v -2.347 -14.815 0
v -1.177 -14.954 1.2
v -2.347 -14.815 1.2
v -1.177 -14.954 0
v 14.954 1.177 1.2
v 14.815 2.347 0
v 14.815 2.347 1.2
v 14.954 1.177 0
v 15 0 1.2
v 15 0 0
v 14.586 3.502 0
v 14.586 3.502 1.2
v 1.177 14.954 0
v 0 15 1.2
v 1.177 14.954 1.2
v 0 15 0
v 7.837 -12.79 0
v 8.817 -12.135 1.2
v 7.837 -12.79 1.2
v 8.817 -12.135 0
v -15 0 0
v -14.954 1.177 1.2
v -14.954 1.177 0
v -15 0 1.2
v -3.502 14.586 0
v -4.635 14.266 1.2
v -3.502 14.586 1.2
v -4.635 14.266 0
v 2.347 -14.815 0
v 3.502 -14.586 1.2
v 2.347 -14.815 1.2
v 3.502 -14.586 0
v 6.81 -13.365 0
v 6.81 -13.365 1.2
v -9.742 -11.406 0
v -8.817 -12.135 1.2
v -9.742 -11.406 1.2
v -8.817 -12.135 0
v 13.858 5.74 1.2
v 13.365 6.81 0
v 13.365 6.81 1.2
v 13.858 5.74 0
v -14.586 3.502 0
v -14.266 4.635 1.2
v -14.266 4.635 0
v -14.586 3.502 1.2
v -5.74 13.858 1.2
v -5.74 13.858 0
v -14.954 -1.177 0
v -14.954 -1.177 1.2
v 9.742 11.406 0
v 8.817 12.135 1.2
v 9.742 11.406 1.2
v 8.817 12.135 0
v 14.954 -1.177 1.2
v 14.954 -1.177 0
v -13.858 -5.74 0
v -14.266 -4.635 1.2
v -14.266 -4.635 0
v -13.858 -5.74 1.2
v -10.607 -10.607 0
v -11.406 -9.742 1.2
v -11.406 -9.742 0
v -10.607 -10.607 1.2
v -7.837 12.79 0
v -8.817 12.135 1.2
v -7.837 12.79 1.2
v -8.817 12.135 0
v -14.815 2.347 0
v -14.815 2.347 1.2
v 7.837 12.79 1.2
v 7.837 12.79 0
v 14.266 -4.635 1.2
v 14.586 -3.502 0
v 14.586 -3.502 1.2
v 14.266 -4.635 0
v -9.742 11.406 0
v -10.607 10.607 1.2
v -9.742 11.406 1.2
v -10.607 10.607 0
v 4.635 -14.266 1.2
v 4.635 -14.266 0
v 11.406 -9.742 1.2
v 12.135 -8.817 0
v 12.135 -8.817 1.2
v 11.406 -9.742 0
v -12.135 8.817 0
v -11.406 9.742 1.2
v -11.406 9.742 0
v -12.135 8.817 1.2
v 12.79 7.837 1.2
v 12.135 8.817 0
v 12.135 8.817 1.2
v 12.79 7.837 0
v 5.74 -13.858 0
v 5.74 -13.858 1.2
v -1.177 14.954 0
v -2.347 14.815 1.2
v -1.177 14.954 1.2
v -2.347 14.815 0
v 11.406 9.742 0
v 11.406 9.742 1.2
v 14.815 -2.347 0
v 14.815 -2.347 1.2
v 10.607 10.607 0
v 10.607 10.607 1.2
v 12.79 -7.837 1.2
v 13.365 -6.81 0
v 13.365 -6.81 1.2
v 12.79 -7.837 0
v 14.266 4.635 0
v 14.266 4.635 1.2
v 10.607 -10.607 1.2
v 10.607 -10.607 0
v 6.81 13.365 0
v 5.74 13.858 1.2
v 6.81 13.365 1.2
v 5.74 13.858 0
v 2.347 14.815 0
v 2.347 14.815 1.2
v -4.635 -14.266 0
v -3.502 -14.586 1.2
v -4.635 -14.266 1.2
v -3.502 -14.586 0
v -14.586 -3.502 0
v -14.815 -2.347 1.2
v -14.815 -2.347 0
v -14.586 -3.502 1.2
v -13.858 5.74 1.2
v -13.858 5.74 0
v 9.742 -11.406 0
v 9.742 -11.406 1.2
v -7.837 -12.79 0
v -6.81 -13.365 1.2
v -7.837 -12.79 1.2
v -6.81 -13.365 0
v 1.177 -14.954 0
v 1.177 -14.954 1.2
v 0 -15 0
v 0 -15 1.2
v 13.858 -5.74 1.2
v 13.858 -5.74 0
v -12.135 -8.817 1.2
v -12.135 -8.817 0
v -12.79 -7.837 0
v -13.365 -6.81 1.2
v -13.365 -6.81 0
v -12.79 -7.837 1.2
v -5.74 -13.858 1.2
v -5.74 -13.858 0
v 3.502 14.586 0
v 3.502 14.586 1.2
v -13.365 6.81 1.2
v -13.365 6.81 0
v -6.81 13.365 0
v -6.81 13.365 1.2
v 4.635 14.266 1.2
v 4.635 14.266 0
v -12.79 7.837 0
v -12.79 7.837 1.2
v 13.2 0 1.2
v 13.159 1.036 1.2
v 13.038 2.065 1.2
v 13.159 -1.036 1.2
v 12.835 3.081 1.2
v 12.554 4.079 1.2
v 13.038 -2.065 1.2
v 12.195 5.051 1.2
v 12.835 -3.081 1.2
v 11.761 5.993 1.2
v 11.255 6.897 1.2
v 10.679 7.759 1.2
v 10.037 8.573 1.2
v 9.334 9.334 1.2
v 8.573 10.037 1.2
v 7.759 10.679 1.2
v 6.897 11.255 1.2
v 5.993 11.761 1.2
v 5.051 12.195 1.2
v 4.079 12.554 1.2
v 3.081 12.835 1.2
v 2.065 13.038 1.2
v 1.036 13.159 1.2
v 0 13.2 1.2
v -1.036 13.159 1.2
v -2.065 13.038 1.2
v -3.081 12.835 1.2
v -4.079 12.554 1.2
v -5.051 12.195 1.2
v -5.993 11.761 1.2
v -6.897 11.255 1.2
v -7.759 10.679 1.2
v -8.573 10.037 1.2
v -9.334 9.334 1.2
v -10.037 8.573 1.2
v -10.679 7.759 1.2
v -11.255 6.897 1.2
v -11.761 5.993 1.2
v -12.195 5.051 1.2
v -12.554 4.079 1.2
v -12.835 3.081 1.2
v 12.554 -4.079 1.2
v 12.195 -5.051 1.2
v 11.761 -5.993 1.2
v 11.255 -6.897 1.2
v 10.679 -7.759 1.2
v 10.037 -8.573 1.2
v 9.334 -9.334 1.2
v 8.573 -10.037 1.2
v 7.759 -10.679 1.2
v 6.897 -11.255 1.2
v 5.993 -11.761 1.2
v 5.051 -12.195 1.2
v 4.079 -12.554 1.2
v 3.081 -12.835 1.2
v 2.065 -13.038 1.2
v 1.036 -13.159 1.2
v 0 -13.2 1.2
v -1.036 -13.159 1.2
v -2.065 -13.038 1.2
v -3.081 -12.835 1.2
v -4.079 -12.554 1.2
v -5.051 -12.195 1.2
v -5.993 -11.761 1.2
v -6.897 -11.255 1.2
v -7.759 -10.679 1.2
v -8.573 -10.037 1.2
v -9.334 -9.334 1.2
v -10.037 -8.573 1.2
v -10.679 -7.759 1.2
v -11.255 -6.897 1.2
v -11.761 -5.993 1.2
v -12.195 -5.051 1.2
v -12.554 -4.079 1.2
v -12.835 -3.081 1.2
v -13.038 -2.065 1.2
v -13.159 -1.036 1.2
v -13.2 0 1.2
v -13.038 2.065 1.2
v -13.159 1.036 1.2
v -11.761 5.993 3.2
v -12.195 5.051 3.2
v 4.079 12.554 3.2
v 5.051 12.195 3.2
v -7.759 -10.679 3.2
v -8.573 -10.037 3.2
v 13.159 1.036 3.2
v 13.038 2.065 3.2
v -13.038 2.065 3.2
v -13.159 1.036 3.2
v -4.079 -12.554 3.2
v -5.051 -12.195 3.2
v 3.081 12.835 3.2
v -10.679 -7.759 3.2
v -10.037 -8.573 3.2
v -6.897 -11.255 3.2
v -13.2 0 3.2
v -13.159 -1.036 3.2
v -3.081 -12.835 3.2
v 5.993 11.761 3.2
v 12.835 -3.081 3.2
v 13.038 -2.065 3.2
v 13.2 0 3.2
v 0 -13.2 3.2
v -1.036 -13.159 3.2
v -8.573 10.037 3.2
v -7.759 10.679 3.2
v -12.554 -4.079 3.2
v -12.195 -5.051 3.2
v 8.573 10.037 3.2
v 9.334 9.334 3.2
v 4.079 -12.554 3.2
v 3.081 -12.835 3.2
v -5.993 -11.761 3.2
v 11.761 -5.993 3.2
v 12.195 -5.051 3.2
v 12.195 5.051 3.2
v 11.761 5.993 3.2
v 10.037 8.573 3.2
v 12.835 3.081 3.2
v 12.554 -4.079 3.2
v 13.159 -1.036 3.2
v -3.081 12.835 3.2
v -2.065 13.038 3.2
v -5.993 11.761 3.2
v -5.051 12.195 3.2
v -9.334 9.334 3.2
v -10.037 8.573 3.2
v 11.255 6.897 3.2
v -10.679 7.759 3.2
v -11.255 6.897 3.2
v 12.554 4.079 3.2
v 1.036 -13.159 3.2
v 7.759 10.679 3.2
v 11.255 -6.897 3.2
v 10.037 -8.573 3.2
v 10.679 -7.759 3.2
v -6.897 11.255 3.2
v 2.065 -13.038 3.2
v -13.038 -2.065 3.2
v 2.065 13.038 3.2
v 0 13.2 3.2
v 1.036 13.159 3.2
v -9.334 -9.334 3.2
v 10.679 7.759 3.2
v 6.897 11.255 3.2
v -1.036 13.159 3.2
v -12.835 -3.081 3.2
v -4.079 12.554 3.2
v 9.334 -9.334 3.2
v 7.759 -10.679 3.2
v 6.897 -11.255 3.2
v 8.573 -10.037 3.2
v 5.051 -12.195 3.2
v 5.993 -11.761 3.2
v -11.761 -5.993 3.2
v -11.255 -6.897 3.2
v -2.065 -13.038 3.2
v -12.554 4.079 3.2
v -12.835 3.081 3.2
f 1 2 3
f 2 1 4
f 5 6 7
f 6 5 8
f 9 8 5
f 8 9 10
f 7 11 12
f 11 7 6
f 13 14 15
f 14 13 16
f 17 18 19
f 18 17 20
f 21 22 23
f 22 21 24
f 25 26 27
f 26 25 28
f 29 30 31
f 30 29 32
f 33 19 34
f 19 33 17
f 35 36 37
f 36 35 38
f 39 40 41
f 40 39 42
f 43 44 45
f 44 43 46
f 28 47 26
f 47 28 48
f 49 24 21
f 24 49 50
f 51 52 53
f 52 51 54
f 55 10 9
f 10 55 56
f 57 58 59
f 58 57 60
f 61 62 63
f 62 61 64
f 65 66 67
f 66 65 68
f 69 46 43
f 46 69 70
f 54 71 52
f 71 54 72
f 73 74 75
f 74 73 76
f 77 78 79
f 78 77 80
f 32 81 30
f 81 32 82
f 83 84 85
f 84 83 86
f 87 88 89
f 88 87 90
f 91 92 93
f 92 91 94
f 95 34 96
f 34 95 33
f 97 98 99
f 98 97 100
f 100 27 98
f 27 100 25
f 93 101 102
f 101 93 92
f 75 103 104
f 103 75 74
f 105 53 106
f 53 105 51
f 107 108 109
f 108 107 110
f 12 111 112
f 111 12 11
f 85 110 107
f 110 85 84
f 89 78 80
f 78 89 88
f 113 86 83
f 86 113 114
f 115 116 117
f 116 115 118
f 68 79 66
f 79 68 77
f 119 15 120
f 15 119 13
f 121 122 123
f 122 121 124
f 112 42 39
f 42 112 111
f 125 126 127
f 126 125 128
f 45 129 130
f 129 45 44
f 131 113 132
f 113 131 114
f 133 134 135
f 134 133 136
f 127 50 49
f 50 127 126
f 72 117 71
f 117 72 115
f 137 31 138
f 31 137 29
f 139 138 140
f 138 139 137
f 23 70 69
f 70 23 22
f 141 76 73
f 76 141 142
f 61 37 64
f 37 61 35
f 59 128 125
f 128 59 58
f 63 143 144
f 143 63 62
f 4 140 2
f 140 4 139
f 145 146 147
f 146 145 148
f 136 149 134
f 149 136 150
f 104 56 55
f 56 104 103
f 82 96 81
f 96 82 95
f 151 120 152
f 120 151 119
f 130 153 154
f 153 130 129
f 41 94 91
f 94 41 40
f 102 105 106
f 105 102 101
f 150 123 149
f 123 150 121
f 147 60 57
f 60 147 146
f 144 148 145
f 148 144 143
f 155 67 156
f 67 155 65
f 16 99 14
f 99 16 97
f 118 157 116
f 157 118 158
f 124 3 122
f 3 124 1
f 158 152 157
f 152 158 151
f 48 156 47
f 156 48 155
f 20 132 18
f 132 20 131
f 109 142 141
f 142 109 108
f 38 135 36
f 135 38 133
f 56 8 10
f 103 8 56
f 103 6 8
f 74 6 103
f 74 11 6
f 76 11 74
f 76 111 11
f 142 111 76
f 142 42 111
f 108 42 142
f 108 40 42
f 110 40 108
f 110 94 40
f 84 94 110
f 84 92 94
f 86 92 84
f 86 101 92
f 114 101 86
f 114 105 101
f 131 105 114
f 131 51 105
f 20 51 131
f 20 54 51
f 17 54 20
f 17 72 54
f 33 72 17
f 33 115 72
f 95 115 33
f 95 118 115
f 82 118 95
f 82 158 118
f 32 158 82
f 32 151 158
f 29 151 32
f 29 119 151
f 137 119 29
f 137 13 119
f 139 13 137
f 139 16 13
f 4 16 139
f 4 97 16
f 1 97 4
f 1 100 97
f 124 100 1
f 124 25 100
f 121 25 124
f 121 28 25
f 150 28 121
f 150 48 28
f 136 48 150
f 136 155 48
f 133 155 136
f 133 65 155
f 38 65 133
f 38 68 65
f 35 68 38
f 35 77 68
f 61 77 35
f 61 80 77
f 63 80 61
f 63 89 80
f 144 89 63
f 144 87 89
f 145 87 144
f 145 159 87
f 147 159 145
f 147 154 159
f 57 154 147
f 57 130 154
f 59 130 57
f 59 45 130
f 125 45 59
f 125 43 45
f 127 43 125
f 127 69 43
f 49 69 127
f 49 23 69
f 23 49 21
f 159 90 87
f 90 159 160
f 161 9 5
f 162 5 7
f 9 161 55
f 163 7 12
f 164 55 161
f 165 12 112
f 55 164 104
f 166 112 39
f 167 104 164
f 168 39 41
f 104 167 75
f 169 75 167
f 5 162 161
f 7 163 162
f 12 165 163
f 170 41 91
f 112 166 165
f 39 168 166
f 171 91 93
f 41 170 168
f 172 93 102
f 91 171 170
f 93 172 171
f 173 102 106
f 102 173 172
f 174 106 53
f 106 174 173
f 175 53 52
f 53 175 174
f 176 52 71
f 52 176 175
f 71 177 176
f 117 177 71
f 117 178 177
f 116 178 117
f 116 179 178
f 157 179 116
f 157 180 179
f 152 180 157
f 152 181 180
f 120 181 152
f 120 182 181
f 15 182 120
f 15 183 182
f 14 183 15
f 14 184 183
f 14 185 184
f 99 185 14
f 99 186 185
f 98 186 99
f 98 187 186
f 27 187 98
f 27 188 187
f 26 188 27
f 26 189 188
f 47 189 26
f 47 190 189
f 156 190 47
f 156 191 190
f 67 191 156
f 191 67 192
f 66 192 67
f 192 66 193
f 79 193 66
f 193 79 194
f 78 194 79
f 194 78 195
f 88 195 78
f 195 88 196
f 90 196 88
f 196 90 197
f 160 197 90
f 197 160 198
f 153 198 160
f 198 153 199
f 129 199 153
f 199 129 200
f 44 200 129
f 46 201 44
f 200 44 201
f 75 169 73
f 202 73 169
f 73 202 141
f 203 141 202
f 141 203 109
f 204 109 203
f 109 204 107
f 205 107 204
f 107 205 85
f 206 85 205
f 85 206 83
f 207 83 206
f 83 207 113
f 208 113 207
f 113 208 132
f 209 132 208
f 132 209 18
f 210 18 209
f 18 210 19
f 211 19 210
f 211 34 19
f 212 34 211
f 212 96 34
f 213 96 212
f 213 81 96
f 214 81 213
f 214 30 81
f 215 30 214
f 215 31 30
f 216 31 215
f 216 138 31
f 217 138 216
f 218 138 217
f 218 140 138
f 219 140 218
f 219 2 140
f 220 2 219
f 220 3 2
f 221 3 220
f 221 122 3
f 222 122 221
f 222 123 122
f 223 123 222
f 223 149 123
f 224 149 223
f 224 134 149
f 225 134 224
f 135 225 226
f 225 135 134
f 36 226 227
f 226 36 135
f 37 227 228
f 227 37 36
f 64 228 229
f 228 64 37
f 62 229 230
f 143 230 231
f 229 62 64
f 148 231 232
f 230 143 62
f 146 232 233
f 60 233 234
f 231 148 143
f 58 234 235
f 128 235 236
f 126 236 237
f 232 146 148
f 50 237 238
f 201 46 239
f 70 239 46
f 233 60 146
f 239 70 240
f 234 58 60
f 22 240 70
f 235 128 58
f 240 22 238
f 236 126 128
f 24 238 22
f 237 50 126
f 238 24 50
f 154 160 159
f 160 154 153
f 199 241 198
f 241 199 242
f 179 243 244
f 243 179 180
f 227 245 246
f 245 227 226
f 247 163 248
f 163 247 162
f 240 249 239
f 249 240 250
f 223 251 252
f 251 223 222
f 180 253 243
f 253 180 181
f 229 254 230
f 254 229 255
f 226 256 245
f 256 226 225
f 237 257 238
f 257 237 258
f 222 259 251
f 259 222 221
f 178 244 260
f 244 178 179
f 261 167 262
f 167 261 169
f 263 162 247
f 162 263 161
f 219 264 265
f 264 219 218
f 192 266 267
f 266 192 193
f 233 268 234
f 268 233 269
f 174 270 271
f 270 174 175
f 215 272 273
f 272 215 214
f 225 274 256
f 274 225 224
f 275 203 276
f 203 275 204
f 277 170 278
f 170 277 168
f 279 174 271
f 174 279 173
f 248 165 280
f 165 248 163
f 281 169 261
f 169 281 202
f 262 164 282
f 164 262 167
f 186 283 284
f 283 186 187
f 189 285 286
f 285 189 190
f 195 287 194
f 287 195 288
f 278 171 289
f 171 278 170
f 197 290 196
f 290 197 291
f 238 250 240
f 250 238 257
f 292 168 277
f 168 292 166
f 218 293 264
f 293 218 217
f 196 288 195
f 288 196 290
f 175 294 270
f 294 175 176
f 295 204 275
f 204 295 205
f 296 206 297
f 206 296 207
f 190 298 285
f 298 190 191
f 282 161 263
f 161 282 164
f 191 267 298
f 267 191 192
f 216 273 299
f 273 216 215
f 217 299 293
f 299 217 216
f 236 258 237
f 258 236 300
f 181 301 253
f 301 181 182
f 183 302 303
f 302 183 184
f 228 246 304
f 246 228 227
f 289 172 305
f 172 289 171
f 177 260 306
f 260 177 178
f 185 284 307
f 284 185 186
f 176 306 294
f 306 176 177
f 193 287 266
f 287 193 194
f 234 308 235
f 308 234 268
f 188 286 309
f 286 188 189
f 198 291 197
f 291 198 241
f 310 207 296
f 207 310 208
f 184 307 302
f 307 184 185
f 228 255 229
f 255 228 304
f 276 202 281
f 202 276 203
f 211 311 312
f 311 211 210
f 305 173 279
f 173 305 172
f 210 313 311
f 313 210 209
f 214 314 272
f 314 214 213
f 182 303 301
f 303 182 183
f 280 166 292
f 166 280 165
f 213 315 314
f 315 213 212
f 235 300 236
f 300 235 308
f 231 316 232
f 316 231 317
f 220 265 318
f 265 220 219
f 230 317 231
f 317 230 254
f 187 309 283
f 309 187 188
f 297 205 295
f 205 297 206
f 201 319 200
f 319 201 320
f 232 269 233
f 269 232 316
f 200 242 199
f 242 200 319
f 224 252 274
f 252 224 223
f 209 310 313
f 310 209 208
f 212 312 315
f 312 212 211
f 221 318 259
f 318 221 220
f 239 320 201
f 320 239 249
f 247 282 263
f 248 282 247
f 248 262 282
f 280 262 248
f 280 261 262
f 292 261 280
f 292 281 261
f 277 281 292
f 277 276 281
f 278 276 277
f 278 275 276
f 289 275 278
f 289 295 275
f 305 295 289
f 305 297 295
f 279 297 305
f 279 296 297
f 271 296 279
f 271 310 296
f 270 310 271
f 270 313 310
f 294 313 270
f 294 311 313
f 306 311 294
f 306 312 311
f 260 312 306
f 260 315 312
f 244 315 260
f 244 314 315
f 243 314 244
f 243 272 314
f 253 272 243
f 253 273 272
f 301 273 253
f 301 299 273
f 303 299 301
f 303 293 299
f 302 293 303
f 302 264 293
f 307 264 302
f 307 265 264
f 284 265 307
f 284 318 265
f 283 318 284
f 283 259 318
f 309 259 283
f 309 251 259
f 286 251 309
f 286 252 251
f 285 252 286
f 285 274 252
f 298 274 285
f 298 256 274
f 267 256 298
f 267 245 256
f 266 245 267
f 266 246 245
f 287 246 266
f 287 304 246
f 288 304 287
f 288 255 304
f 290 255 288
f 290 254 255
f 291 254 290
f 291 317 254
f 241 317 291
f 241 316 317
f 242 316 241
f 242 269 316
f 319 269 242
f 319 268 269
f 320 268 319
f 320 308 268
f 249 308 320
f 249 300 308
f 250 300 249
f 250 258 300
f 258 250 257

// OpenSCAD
// file: grommet-center-piece.scad
module grommetCenterPiece(diameter)
{

    $fn = 80;
            
    union()
    {
        overlap = 1; // this is the lip that extends past the grommet center cutout

        radius = diameter / 2.0;

        bottomRadius = radius + overlap;

        wallWidth = 1.2; // for 0.4mm nozzles    

        cylinder(r=bottomRadius, h=wallWidth);  // the bottom

        pipeRadius = radius - 0.8;

        pipeHeight = 3.2; // move just past the bottom cutout pipe

        cylinder(r=pipeRadius, h=pipeHeight);
    }
}

module bottom(radius)
{

}
// main file
use <grommet-center-piece.scad>

// this is the diameter for the grommet's center cutout.
diameter = 28;

grommetCenterPiece(diameter = diameter);
